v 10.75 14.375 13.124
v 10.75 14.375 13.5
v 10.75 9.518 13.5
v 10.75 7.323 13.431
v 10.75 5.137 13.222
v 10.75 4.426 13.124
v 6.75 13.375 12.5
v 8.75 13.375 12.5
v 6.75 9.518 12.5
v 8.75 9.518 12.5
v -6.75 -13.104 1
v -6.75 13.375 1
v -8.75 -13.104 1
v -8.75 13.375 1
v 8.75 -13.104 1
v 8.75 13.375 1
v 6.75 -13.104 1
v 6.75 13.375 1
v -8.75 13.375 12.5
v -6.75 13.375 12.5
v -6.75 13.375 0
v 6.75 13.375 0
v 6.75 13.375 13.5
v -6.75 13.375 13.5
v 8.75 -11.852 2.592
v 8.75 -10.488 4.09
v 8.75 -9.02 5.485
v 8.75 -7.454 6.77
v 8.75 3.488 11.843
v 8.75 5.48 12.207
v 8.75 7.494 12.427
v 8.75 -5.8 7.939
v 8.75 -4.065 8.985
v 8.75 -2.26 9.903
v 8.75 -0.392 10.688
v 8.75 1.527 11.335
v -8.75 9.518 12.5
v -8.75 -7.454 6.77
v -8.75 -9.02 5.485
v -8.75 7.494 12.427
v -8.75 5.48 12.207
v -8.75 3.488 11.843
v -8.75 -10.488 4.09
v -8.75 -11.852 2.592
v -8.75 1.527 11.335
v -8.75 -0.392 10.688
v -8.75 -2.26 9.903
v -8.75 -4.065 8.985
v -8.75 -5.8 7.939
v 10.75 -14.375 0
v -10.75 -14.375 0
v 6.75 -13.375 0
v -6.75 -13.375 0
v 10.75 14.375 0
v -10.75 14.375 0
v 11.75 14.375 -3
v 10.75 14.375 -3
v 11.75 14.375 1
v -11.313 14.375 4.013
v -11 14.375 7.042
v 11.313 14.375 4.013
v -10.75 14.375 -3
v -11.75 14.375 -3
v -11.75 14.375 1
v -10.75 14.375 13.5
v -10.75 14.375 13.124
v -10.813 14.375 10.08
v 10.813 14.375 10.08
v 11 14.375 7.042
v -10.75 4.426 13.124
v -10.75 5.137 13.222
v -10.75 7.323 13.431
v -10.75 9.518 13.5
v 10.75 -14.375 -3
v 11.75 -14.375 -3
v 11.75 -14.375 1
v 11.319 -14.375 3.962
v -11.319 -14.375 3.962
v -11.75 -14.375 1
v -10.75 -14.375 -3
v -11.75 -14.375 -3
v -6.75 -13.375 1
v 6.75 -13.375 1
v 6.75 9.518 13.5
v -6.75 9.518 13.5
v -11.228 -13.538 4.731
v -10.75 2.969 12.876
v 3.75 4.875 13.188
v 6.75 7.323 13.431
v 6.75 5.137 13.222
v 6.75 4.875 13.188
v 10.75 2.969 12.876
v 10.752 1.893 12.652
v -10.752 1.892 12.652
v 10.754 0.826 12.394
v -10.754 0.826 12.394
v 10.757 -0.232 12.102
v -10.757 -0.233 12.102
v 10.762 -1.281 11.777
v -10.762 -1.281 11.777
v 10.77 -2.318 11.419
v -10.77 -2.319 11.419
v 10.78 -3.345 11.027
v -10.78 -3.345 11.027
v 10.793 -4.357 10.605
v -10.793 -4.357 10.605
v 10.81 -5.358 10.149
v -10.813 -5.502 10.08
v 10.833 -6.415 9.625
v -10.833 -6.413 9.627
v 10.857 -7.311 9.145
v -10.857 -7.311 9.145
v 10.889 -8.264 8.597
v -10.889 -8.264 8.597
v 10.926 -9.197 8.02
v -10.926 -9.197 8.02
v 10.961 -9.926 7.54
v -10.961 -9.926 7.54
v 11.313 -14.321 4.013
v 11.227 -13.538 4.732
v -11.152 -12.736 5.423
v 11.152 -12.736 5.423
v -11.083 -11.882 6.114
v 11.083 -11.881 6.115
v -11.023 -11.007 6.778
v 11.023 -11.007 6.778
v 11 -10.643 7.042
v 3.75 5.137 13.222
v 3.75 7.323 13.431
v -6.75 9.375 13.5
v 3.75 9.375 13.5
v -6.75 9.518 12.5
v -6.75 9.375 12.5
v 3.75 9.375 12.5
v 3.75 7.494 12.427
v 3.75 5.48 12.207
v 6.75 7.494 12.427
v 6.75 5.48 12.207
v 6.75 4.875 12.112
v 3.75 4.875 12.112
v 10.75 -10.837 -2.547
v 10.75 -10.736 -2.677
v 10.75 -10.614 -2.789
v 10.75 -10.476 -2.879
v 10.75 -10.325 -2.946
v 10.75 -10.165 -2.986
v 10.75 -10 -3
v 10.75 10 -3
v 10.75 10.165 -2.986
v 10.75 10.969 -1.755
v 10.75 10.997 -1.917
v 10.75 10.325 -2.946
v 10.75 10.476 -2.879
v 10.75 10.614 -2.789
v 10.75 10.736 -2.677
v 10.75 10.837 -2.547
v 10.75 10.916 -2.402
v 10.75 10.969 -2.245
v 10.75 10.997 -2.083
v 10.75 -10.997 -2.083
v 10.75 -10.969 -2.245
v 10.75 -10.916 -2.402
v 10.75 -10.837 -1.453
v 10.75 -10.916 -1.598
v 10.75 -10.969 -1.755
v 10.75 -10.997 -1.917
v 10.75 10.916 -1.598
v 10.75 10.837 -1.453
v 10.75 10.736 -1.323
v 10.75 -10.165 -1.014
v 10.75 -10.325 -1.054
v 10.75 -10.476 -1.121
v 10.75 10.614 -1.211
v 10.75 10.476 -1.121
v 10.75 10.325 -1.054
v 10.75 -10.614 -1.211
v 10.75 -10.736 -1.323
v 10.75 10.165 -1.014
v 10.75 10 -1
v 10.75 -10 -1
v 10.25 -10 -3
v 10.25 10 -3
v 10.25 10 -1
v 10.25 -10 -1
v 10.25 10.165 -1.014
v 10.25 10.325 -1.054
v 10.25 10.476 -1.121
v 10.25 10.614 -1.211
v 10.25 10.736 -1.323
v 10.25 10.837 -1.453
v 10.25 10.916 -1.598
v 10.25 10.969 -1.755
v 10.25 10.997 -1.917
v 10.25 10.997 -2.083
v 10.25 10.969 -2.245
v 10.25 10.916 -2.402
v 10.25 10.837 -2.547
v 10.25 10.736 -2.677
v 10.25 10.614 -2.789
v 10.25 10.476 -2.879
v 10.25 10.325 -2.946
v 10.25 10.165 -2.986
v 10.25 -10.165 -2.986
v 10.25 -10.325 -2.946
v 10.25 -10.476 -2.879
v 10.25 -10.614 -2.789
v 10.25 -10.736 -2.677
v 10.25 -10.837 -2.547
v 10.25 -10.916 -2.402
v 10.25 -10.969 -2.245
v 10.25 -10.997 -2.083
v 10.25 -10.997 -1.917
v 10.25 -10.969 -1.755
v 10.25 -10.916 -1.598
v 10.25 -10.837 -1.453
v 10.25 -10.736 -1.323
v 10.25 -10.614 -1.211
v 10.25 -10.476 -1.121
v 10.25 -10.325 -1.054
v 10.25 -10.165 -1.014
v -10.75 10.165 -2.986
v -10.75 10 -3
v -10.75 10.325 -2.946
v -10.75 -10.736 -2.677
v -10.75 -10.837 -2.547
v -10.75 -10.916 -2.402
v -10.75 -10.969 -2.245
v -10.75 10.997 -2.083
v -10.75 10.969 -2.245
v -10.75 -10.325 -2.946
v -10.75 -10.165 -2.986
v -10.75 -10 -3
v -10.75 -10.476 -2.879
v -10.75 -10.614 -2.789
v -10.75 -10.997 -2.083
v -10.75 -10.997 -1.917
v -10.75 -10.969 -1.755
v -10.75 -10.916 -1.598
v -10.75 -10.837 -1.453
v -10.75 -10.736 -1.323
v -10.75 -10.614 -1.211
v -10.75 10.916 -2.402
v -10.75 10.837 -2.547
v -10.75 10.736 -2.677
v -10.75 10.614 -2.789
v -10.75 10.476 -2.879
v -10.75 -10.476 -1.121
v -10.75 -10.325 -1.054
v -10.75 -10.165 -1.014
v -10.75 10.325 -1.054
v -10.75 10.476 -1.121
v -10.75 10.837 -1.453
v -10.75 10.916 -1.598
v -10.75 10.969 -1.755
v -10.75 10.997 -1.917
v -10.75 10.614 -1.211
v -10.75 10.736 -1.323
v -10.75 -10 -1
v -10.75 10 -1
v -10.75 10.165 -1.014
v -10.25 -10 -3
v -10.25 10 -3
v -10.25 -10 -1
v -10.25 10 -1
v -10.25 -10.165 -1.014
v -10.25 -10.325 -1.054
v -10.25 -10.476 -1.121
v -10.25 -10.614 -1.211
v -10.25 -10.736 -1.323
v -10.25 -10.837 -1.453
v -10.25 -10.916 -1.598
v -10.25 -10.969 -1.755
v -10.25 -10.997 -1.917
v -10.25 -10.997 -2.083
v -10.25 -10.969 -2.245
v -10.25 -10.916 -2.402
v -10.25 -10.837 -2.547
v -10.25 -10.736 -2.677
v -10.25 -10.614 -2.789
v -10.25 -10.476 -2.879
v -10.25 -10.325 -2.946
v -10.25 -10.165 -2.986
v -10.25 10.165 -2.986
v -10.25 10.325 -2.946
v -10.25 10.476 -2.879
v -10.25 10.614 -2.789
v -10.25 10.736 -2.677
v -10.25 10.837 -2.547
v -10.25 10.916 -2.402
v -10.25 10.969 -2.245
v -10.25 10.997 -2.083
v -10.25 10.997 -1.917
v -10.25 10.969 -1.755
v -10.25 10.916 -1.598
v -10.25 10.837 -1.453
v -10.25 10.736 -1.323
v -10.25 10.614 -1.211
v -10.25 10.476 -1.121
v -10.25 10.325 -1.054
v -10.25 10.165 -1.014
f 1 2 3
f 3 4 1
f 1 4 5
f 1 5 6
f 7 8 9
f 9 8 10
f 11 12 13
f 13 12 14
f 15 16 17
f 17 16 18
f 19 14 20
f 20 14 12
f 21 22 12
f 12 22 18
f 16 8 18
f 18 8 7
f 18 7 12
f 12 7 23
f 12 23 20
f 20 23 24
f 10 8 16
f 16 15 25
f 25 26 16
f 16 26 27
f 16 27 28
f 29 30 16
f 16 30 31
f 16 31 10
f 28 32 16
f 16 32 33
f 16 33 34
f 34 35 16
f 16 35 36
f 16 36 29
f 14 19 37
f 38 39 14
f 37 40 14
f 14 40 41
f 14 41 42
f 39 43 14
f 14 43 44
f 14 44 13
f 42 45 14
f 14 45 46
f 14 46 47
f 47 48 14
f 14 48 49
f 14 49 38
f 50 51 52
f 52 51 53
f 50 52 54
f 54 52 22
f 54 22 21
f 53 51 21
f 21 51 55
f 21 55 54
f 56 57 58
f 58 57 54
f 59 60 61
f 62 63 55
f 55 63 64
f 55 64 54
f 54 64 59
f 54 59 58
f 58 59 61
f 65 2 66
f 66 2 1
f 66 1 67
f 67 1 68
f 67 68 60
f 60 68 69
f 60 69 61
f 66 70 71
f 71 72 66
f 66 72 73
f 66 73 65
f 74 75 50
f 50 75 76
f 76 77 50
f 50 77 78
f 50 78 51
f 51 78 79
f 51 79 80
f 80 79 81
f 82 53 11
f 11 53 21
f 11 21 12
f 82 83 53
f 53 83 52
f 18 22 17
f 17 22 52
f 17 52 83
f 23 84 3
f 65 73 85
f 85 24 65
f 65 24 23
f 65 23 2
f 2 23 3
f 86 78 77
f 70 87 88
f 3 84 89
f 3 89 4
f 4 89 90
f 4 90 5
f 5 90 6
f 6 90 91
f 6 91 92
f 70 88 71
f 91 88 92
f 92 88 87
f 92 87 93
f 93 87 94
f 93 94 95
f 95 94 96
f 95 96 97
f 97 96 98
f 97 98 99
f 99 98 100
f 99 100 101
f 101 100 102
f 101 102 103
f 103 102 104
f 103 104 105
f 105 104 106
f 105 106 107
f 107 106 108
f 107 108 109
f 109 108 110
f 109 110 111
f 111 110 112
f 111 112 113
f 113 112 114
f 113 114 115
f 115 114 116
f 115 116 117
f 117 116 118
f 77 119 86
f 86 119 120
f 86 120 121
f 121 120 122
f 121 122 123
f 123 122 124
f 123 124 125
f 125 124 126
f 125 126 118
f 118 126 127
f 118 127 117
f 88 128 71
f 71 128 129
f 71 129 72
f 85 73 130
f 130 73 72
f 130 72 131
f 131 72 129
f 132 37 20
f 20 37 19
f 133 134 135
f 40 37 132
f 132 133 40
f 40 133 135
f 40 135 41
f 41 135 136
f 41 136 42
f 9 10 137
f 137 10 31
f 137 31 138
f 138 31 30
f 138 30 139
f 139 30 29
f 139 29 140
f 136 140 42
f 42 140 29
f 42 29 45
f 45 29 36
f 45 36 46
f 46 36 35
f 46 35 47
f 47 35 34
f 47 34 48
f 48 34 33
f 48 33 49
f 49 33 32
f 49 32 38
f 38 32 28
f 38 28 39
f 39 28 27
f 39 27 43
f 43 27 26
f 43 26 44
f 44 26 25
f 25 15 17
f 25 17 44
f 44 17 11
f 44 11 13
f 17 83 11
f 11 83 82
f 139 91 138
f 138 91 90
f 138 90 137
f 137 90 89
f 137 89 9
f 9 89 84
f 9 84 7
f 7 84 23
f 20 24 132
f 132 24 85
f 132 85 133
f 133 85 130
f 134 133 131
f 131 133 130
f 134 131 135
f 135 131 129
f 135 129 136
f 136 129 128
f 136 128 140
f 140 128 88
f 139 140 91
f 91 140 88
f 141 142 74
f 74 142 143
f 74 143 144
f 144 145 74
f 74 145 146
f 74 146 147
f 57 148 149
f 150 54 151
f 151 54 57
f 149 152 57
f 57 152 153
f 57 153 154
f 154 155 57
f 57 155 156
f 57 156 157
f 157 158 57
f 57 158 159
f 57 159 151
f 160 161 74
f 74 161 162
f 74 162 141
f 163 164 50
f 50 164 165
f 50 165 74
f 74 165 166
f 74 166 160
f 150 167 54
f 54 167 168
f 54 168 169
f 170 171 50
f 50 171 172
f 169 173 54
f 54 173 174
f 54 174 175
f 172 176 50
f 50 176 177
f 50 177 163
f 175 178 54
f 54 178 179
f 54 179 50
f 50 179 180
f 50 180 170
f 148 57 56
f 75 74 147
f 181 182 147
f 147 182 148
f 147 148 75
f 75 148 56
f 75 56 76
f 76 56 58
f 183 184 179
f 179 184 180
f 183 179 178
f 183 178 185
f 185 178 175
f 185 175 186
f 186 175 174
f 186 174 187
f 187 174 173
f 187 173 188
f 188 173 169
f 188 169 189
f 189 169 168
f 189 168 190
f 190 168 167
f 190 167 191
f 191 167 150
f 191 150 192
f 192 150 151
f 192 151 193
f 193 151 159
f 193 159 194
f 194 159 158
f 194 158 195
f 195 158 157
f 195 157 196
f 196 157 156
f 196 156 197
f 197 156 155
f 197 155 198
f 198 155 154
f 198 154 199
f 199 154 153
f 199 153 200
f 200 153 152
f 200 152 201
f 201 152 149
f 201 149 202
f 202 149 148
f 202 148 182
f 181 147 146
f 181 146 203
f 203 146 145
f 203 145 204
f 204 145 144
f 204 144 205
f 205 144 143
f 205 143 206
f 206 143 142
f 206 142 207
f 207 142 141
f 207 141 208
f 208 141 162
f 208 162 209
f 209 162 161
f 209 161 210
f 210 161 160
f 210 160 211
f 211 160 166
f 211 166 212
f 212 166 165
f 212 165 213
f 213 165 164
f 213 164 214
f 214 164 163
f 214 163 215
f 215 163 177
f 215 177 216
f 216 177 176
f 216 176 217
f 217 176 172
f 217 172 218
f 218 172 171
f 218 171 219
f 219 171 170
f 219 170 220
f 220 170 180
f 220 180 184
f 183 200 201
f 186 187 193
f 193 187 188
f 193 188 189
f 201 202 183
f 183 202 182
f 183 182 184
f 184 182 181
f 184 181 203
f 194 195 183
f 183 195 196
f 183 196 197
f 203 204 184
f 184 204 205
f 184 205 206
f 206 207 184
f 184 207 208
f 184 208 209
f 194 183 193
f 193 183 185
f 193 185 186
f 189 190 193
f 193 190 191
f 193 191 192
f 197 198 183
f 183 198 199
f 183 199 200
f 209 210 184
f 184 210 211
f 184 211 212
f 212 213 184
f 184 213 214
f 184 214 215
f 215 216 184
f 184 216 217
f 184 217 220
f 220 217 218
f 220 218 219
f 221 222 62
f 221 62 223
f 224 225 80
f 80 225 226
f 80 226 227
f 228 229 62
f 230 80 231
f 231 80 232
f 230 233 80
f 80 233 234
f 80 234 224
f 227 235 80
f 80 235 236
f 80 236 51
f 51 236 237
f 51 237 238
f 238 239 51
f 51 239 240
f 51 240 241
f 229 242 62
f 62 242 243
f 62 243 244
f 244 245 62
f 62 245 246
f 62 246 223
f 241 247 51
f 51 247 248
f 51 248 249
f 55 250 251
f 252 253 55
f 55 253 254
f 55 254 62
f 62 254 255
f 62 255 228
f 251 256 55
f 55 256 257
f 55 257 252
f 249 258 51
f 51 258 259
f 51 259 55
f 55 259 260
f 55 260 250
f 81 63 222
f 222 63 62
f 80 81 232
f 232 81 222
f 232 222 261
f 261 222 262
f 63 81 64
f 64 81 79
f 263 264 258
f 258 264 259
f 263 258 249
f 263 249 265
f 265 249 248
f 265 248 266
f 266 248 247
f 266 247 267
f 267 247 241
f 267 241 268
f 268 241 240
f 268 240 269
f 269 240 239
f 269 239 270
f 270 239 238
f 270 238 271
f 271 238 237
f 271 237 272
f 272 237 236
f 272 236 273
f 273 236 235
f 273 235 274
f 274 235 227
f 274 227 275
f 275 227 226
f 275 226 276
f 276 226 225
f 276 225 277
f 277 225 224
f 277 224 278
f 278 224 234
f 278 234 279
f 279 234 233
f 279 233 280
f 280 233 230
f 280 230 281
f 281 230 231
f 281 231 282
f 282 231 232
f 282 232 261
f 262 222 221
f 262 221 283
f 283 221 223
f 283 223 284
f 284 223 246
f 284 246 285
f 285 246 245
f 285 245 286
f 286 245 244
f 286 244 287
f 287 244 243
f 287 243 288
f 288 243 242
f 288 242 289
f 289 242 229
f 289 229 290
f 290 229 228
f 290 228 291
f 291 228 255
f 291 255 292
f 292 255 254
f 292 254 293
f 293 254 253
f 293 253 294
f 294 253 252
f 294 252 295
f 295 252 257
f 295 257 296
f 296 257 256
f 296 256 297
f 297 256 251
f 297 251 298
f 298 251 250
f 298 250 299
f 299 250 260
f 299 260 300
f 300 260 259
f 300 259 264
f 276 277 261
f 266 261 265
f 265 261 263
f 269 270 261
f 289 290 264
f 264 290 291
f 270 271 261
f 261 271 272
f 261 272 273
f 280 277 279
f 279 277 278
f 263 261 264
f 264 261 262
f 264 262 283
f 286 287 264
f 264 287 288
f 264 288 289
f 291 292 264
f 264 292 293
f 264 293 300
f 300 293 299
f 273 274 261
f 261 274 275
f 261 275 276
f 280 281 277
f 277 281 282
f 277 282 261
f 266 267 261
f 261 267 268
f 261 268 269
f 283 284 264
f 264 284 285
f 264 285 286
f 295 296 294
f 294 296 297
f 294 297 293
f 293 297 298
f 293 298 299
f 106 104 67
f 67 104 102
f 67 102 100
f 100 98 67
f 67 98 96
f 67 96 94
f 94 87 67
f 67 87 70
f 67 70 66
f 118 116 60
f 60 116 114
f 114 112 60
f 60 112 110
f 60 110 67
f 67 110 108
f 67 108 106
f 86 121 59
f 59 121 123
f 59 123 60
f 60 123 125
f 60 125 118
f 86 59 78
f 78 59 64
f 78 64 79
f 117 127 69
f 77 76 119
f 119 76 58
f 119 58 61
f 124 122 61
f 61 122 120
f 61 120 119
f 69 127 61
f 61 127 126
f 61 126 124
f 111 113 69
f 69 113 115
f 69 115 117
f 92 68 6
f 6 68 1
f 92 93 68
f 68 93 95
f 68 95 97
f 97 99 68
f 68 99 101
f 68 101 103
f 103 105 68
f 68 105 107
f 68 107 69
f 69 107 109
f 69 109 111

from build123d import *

# Parameters (mm, degrees)
SKETCH1_W           = 21.5
SKETCH1_H           = 28.75
SKETCH1_W_2         = 13.5
SKETCH1_H_2         = 26.75
BOSS_EXTRUDE1_DEPTH = 1
SKETCH3_W           = 21.5
SKETCH3_H           = 12.5
BOSS_EXTRUDE2_DEPTH = 1
BOSS_EXTRUDE3_DEPTH = 2
BOSS_EXTRUDE4_START = -19.5
BOSS_EXTRUDE4_DEPTH = 2
BOSS_EXTRUDE5_REACH = 29.733
CUT_EXTRUDE1_DEPTH  = 23.460033949
SKETCH7_W           = 4
SKETCH7_H           = 28.75
BOSS_EXTRUDE8_DEPTH = 1
BOSS_EXTRUDE9_DEPTH = 0.5
FILLET2_R           = 74


with BuildPart() as part:
    # Sketch1 → Boss-Extrude1 (new body)
    with BuildSketch(Plane.XY):
        Rectangle(SKETCH1_W, SKETCH1_H)
        Rectangle(SKETCH1_W_2, SKETCH1_H_2, mode=Mode.SUBTRACT)
    extrude(amount=BOSS_EXTRUDE1_DEPTH)

    # Sketch3 → Boss-Extrude2 (add)
    with BuildSketch(Plane(origin=(0, 14.375, 0), x_dir=(1, 0, 0), z_dir=(0, 1, 0))):
        with Locations((0, -7.25)):
            Rectangle(SKETCH3_W, SKETCH3_H)
    extrude(amount=-BOSS_EXTRUDE2_DEPTH)

    # Sketch4 → Boss-Extrude3 (add)
    with BuildSketch(Plane(origin=(10.75, 0, 0), x_dir=(0, 0, -1), z_dir=(1, 0, 0))):
        with BuildLine():
            Line((-13.5, 13.375), (-13.5, 9.51786033))
            ThreePointArc((-13.5, 9.51786033), (-11.027421028, -3.345267641), (-3.962103479, -14.375))
            Line((-3.962103479, -14.375), (-1, -14.375))
            Line((-1, -14.375), (-1, 13.375))
            Line((-1, 13.375), (-13.5, 13.375))
        make_face()
    extrude(amount=-BOSS_EXTRUDE3_DEPTH)

    # Sketch4<2> → Boss-Extrude4 (add)
    with BuildSketch(Plane(origin=(10.75, 0, 0), x_dir=(0, 0, -1), z_dir=(1, 0, 0)).offset(BOSS_EXTRUDE4_START)):
        with BuildLine():
            Line((-13.5, 13.375), (-13.5, 9.51786033))
            ThreePointArc((-13.5, 9.51786033), (-11.027421028, -3.345267641), (-3.962103479, -14.375))
            Line((-3.962103479, -14.375), (-1, -14.375))
            Line((-1, -14.375), (-1, 13.375))
            Line((-1, 13.375), (-13.5, 13.375))
        make_face()
    extrude(amount=-BOSS_EXTRUDE4_DEPTH)

    # Sketch5 → Boss-Extrude5 (add, up to next)
    with BuildSketch(Plane.ZY.offset(-8.75), mode=Mode.PRIVATE) as boss_extrude5_sk1:
        with BuildLine():
            Line((12.5, 13.375), (13.5, 13.375))
            Line((13.5, 13.375), (13.5, 9.51786033))
            ThreePointArc((13.5, 9.51786033), (11.027421028, -3.345267641), (3.962103479, -14.375))
            Line((3.962103479, -14.375), (1, -14.375))
            Line((1, -14.375), (1, -13.104031722))
            ThreePointArc((1, -13.104031722), (9.459967949, -3.17071721), (12.5, 9.51786033))
            Line((12.5, 9.51786033), (12.5, 13.375))
        make_face()
    boss_extrude5_tool1 = extrude(boss_extrude5_sk1.sketch, amount=BOSS_EXTRUDE5_REACH, mode=Mode.PRIVATE) - part.part
    add(boss_extrude5_tool1.solids().sort_by_distance((8.75, -14.070646, 2.481052))[0])

    # Sketch6 → Cut-Extrude1 (cut, through all)
    with BuildSketch(Plane(origin=(0, 0, 0), x_dir=(-1, 0, 0), z_dir=(0, 0, -1))):
        Polygon((-6.75, 13.375), (6.75, 13.375), (6.75, 9.375), (-3.75, 9.375), (-3.75, 4.875), (-6.75, 4.875), align=None)
    extrude(amount=-CUT_EXTRUDE1_DEPTH, mode=Mode.SUBTRACT)

    # Sketch7 → Boss-Extrude8 (add)
    with BuildSketch(Plane(origin=(10.75, 0, 0), x_dir=(0, 0, -1), z_dir=(1, 0, 0))):
        with Locations((1, 0)):
            Rectangle(SKETCH7_W, SKETCH7_H)
    boss_extrude8 = extrude(amount=BOSS_EXTRUDE8_DEPTH)

    # Sketch7<5> → Boss-Extrude9 (add)
    with BuildSketch(Plane(origin=(10.75, 0, 0), x_dir=(0, 0, -1), z_dir=(1, 0, 0))):
        with BuildLine():
            Line((3, -10), (3, 10))
            ThreePointArc((3, 10), (2, 11), (1, 10))
            Line((1, 10), (1, -10))
            ThreePointArc((1, -10), (2, -11), (3, -10))
        make_face()
    boss_extrude9 = extrude(amount=-BOSS_EXTRUDE9_DEPTH)

    # Mirror3: Boss-Extrude8, Boss-Extrude9 across plane
    add(boss_extrude8.mirror(Plane(origin=(0, 0, 0), x_dir=(0, 0, 1), z_dir=(1, 0, 0))))
    add(boss_extrude9.mirror(Plane(origin=(0, 0, 0), x_dir=(0, 0, 1), z_dir=(1, 0, 0))))

    # Fillet2
    # the kernel refuses this fillet: 74 mm, written as the material it adds along each edge
    with BuildSketch(Plane(origin=(10.75, -14.375, 1), x_dir=(0, 0, 1), z_dir=(0, 1, 0))) as fillet2_piece_1_section:
        with BuildLine():
            CenterArc((12.124355653, 74), FILLET2_R, 260.569992092, 9.430007908)
            Line((0, 1), (0, 0))
            Line((0, 0), (12.124355653, 0))
        make_face()
    fillet2_piece_1 = extrude(amount=28.75, mode=Mode.PRIVATE)
    fillet2_piece_1 = fillet2_piece_1 & Plane(origin=(10.75, 9.51786033, -21.195293839), x_dir=(0, 0, 1), z_dir=(1, 0, 0)) * Cylinder(34.695293839, 106, mode=Mode.PRIVATE)
    add(fillet2_piece_1)
    with BuildSketch(Plane(origin=(-10.75, -14.375, 1), x_dir=(0, 0, 1), z_dir=(0, 1, 0))) as fillet2_piece_2_section:
        with BuildLine():
            CenterArc((12.124355653, -74), FILLET2_R, 90, 9.430007908)
            Line((0, -1), (0, 0))
            Line((0, 0), (12.124355653, 0))
        make_face()
    fillet2_piece_2 = extrude(amount=28.75, mode=Mode.PRIVATE)
    fillet2_piece_2 = fillet2_piece_2 & Plane(origin=(-10.75, 9.51786033, -21.195293839), x_dir=(0, 0, 1), z_dir=(1, 0, 0)) * Cylinder(34.695293839, 106, mode=Mode.PRIVATE)
    add(fillet2_piece_2)


solid = part.part
